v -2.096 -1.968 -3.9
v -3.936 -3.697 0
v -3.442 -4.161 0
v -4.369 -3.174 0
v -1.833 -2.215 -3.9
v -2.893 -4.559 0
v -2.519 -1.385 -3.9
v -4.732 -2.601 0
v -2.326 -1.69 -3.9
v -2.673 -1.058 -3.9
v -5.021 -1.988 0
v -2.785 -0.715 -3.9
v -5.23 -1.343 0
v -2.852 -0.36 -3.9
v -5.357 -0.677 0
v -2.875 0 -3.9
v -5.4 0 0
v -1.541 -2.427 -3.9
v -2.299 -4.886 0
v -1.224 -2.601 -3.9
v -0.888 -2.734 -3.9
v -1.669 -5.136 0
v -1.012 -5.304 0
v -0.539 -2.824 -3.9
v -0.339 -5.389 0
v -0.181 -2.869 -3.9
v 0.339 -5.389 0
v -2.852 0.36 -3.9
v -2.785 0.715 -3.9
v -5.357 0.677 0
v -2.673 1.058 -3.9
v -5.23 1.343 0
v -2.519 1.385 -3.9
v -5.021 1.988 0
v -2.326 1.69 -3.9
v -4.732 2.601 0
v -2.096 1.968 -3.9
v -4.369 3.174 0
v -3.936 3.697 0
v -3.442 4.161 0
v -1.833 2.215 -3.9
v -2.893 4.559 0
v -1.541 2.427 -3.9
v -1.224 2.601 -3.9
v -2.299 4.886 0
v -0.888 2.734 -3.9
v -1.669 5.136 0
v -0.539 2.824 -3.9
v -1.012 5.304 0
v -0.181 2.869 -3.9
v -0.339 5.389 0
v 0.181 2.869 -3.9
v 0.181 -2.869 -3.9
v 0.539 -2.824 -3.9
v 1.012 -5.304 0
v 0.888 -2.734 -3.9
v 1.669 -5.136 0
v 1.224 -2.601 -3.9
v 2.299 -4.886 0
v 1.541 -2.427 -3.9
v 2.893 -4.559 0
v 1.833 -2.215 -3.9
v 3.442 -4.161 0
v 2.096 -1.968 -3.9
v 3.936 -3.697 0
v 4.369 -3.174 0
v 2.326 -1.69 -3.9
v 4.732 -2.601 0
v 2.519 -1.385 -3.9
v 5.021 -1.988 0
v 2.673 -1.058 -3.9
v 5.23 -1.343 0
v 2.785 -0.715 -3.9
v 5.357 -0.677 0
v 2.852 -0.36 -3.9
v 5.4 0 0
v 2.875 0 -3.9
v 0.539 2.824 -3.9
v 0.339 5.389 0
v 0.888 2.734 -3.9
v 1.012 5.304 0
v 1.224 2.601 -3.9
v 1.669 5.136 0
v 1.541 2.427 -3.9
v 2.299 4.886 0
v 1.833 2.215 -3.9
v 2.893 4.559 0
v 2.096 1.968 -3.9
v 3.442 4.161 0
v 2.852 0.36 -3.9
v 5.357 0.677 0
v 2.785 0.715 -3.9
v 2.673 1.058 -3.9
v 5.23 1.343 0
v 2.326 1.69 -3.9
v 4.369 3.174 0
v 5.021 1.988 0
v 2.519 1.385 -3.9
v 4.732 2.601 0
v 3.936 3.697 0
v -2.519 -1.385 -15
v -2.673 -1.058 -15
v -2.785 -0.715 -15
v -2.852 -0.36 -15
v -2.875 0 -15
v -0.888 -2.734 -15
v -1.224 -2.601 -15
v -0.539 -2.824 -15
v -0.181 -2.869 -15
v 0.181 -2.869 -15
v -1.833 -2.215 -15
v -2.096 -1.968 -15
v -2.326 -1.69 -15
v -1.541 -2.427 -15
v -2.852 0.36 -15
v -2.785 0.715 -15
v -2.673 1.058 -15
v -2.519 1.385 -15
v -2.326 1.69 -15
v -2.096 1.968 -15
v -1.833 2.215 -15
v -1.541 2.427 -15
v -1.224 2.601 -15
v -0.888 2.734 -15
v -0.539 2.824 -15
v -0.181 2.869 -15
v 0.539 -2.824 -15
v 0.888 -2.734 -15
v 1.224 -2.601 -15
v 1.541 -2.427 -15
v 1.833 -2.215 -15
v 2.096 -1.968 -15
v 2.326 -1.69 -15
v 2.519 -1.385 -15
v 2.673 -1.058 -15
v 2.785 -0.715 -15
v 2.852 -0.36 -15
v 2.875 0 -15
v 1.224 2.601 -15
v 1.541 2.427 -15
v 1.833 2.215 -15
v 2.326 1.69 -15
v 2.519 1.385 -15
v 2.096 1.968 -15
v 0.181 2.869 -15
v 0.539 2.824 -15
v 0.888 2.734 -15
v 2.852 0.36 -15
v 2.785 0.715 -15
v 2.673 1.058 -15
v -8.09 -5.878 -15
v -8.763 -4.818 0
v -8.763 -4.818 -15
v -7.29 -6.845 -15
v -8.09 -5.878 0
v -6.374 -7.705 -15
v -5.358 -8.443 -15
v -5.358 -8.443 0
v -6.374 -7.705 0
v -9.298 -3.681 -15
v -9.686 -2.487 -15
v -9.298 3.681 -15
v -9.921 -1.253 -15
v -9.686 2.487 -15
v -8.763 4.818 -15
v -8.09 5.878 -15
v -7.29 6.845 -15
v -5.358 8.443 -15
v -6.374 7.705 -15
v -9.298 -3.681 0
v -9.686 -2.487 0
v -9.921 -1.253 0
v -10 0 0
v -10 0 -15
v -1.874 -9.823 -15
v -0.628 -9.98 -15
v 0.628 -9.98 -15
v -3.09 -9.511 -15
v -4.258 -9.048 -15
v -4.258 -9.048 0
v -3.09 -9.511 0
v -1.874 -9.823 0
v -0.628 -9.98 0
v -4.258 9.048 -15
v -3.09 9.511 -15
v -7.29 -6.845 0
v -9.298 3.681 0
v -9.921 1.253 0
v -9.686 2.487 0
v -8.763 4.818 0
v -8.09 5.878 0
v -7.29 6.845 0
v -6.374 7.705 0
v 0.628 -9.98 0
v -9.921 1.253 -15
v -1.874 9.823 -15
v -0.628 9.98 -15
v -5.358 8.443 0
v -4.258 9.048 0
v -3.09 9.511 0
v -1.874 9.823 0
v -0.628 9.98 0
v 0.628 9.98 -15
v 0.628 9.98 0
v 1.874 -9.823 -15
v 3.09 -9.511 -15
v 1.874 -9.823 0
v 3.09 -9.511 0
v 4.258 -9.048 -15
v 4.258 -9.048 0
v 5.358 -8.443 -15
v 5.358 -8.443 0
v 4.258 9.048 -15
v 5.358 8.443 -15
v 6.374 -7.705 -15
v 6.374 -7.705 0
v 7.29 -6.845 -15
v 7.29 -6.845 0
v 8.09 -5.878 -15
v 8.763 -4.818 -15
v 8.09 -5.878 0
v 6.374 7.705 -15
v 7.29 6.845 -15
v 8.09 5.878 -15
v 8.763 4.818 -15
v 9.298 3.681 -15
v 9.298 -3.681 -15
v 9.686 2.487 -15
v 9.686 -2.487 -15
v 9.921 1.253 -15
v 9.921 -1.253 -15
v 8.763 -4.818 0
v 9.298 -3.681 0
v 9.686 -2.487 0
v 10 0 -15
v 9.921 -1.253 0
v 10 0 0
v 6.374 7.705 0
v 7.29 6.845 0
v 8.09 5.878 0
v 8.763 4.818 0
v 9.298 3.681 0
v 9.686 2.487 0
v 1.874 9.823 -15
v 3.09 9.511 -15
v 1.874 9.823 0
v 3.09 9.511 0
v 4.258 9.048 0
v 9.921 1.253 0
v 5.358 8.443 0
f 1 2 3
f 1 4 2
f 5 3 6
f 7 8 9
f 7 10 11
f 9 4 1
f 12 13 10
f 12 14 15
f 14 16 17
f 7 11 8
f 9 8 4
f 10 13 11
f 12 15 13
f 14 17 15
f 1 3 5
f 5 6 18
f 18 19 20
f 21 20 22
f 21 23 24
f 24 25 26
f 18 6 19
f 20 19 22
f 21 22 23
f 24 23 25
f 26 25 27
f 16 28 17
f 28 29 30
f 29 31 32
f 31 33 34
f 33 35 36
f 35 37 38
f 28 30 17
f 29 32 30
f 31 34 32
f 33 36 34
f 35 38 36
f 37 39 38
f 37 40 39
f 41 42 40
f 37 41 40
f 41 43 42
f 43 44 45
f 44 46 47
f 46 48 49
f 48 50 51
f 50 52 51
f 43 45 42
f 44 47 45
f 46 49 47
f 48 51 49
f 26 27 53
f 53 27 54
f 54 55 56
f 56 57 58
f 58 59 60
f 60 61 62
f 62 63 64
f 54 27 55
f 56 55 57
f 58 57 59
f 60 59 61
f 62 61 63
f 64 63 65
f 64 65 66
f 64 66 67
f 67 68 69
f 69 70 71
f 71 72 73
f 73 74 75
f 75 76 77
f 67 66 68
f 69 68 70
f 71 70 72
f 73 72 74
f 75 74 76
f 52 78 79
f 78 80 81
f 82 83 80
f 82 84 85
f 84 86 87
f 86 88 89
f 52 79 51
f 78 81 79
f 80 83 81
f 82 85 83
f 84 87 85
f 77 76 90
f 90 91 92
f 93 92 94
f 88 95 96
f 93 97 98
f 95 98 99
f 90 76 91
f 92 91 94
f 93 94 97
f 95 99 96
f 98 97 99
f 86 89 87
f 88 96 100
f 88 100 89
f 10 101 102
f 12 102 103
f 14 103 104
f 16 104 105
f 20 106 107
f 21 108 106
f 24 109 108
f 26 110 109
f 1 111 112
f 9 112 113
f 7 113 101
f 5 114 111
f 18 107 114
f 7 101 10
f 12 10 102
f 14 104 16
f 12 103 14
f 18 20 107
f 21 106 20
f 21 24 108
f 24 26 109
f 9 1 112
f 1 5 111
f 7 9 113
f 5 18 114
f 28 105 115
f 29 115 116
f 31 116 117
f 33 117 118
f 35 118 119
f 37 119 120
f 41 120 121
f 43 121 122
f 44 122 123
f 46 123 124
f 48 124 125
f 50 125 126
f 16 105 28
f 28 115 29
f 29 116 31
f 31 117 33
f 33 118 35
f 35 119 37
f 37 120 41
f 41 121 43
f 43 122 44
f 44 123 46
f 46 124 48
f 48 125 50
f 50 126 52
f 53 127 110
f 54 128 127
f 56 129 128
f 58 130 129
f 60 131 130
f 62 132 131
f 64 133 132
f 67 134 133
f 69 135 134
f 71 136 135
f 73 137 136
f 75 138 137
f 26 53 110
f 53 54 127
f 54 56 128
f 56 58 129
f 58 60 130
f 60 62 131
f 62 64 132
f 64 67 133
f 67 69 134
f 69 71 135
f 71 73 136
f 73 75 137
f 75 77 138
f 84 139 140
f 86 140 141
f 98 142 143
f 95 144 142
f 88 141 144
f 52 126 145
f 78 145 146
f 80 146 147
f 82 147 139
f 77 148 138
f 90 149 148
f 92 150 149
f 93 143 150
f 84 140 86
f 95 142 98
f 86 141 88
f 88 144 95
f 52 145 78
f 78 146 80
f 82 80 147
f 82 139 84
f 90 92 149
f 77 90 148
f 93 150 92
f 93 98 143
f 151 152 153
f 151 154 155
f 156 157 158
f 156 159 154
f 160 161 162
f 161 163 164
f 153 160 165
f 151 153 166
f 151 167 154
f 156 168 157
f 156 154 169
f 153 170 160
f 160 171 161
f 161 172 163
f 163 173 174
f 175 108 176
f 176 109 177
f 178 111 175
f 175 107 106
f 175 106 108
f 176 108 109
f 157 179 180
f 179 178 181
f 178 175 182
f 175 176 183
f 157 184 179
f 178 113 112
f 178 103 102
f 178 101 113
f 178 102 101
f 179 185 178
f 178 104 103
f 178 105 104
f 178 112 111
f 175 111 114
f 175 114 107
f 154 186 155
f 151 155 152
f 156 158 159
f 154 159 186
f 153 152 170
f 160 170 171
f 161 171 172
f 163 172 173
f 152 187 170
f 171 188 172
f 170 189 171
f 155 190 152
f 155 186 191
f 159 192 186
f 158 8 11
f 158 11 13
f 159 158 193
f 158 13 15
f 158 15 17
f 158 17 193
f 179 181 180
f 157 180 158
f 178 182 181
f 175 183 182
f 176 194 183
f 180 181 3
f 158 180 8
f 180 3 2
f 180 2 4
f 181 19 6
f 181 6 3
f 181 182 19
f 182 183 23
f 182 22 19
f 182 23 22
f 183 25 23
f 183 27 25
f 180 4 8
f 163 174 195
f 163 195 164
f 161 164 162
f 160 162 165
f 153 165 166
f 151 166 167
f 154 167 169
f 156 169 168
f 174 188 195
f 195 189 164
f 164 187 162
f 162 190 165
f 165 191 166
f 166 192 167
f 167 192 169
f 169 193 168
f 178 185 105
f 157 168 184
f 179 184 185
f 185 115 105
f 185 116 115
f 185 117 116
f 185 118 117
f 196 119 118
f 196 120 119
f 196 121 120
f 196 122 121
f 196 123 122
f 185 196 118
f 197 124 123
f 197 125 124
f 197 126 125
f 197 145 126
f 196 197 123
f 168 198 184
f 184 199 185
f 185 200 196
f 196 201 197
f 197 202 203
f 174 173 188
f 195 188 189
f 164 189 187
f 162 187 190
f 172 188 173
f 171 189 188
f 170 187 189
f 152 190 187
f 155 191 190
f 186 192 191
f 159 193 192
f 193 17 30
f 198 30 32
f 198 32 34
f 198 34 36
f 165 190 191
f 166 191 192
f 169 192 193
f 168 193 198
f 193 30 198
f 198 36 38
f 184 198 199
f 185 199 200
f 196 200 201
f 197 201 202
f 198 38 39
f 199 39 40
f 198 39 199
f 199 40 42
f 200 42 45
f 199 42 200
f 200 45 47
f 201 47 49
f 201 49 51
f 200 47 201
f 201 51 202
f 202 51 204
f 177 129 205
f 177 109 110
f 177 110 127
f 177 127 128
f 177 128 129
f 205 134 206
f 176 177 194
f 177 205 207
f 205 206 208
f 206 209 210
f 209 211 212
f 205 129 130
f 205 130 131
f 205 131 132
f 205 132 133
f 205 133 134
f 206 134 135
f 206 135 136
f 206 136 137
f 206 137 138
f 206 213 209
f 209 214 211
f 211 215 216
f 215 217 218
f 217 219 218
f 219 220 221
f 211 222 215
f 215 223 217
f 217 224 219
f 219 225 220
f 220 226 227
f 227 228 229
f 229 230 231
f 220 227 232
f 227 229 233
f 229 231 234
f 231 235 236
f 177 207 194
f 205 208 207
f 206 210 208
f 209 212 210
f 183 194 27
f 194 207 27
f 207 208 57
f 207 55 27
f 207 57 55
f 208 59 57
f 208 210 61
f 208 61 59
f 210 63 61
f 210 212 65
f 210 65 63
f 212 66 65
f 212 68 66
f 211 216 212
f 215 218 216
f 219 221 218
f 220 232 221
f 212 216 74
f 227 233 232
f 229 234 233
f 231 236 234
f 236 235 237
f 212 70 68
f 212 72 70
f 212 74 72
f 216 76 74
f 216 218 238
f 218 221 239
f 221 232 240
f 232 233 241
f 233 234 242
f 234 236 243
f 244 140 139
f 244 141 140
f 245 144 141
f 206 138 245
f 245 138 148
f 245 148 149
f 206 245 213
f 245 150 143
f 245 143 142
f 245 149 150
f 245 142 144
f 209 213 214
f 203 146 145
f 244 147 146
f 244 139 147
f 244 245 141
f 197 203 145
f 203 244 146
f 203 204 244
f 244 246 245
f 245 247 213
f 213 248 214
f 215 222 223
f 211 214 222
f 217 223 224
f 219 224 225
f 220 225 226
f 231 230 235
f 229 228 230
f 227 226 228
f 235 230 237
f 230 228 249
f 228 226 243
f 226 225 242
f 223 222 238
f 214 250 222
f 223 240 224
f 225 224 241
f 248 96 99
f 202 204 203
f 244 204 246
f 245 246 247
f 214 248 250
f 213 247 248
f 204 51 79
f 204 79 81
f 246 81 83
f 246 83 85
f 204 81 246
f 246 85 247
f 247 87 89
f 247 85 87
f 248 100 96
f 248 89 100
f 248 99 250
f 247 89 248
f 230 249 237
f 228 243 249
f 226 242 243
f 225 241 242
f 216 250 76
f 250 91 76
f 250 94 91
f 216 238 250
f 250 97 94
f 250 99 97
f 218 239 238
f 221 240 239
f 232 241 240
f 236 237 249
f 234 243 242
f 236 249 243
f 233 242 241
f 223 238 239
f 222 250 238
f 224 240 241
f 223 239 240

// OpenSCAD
$fn = 50;

difference() {
	union() {
		translate(v = [0, 0, -15.0]) {
			cylinder(h = 15, r = 10.0);
		}
	}
	union() {
		translate(v = [0, 0, 0]) {
			rotate(a = [0, 0, 0]) {
				difference() {
					union() {
						translate(v = [0, 0, -18.0]) {
							cylinder(h = 18, r = 2.6);
						}
						translate(v = [0, 0, -3.9]) {
							cylinder(h = 3.9, r1 = 2.875, r2 = 5.4);
						}
						translate(v = [0, 0, -18.0]) {
							cylinder(h = 18, r = 2.875);
						}
						translate(v = [0, 0, -18.0]) {
							cylinder(h = 18, r = 2.6);
						}
					}
					union();
				}
			}
		}
	}
}
